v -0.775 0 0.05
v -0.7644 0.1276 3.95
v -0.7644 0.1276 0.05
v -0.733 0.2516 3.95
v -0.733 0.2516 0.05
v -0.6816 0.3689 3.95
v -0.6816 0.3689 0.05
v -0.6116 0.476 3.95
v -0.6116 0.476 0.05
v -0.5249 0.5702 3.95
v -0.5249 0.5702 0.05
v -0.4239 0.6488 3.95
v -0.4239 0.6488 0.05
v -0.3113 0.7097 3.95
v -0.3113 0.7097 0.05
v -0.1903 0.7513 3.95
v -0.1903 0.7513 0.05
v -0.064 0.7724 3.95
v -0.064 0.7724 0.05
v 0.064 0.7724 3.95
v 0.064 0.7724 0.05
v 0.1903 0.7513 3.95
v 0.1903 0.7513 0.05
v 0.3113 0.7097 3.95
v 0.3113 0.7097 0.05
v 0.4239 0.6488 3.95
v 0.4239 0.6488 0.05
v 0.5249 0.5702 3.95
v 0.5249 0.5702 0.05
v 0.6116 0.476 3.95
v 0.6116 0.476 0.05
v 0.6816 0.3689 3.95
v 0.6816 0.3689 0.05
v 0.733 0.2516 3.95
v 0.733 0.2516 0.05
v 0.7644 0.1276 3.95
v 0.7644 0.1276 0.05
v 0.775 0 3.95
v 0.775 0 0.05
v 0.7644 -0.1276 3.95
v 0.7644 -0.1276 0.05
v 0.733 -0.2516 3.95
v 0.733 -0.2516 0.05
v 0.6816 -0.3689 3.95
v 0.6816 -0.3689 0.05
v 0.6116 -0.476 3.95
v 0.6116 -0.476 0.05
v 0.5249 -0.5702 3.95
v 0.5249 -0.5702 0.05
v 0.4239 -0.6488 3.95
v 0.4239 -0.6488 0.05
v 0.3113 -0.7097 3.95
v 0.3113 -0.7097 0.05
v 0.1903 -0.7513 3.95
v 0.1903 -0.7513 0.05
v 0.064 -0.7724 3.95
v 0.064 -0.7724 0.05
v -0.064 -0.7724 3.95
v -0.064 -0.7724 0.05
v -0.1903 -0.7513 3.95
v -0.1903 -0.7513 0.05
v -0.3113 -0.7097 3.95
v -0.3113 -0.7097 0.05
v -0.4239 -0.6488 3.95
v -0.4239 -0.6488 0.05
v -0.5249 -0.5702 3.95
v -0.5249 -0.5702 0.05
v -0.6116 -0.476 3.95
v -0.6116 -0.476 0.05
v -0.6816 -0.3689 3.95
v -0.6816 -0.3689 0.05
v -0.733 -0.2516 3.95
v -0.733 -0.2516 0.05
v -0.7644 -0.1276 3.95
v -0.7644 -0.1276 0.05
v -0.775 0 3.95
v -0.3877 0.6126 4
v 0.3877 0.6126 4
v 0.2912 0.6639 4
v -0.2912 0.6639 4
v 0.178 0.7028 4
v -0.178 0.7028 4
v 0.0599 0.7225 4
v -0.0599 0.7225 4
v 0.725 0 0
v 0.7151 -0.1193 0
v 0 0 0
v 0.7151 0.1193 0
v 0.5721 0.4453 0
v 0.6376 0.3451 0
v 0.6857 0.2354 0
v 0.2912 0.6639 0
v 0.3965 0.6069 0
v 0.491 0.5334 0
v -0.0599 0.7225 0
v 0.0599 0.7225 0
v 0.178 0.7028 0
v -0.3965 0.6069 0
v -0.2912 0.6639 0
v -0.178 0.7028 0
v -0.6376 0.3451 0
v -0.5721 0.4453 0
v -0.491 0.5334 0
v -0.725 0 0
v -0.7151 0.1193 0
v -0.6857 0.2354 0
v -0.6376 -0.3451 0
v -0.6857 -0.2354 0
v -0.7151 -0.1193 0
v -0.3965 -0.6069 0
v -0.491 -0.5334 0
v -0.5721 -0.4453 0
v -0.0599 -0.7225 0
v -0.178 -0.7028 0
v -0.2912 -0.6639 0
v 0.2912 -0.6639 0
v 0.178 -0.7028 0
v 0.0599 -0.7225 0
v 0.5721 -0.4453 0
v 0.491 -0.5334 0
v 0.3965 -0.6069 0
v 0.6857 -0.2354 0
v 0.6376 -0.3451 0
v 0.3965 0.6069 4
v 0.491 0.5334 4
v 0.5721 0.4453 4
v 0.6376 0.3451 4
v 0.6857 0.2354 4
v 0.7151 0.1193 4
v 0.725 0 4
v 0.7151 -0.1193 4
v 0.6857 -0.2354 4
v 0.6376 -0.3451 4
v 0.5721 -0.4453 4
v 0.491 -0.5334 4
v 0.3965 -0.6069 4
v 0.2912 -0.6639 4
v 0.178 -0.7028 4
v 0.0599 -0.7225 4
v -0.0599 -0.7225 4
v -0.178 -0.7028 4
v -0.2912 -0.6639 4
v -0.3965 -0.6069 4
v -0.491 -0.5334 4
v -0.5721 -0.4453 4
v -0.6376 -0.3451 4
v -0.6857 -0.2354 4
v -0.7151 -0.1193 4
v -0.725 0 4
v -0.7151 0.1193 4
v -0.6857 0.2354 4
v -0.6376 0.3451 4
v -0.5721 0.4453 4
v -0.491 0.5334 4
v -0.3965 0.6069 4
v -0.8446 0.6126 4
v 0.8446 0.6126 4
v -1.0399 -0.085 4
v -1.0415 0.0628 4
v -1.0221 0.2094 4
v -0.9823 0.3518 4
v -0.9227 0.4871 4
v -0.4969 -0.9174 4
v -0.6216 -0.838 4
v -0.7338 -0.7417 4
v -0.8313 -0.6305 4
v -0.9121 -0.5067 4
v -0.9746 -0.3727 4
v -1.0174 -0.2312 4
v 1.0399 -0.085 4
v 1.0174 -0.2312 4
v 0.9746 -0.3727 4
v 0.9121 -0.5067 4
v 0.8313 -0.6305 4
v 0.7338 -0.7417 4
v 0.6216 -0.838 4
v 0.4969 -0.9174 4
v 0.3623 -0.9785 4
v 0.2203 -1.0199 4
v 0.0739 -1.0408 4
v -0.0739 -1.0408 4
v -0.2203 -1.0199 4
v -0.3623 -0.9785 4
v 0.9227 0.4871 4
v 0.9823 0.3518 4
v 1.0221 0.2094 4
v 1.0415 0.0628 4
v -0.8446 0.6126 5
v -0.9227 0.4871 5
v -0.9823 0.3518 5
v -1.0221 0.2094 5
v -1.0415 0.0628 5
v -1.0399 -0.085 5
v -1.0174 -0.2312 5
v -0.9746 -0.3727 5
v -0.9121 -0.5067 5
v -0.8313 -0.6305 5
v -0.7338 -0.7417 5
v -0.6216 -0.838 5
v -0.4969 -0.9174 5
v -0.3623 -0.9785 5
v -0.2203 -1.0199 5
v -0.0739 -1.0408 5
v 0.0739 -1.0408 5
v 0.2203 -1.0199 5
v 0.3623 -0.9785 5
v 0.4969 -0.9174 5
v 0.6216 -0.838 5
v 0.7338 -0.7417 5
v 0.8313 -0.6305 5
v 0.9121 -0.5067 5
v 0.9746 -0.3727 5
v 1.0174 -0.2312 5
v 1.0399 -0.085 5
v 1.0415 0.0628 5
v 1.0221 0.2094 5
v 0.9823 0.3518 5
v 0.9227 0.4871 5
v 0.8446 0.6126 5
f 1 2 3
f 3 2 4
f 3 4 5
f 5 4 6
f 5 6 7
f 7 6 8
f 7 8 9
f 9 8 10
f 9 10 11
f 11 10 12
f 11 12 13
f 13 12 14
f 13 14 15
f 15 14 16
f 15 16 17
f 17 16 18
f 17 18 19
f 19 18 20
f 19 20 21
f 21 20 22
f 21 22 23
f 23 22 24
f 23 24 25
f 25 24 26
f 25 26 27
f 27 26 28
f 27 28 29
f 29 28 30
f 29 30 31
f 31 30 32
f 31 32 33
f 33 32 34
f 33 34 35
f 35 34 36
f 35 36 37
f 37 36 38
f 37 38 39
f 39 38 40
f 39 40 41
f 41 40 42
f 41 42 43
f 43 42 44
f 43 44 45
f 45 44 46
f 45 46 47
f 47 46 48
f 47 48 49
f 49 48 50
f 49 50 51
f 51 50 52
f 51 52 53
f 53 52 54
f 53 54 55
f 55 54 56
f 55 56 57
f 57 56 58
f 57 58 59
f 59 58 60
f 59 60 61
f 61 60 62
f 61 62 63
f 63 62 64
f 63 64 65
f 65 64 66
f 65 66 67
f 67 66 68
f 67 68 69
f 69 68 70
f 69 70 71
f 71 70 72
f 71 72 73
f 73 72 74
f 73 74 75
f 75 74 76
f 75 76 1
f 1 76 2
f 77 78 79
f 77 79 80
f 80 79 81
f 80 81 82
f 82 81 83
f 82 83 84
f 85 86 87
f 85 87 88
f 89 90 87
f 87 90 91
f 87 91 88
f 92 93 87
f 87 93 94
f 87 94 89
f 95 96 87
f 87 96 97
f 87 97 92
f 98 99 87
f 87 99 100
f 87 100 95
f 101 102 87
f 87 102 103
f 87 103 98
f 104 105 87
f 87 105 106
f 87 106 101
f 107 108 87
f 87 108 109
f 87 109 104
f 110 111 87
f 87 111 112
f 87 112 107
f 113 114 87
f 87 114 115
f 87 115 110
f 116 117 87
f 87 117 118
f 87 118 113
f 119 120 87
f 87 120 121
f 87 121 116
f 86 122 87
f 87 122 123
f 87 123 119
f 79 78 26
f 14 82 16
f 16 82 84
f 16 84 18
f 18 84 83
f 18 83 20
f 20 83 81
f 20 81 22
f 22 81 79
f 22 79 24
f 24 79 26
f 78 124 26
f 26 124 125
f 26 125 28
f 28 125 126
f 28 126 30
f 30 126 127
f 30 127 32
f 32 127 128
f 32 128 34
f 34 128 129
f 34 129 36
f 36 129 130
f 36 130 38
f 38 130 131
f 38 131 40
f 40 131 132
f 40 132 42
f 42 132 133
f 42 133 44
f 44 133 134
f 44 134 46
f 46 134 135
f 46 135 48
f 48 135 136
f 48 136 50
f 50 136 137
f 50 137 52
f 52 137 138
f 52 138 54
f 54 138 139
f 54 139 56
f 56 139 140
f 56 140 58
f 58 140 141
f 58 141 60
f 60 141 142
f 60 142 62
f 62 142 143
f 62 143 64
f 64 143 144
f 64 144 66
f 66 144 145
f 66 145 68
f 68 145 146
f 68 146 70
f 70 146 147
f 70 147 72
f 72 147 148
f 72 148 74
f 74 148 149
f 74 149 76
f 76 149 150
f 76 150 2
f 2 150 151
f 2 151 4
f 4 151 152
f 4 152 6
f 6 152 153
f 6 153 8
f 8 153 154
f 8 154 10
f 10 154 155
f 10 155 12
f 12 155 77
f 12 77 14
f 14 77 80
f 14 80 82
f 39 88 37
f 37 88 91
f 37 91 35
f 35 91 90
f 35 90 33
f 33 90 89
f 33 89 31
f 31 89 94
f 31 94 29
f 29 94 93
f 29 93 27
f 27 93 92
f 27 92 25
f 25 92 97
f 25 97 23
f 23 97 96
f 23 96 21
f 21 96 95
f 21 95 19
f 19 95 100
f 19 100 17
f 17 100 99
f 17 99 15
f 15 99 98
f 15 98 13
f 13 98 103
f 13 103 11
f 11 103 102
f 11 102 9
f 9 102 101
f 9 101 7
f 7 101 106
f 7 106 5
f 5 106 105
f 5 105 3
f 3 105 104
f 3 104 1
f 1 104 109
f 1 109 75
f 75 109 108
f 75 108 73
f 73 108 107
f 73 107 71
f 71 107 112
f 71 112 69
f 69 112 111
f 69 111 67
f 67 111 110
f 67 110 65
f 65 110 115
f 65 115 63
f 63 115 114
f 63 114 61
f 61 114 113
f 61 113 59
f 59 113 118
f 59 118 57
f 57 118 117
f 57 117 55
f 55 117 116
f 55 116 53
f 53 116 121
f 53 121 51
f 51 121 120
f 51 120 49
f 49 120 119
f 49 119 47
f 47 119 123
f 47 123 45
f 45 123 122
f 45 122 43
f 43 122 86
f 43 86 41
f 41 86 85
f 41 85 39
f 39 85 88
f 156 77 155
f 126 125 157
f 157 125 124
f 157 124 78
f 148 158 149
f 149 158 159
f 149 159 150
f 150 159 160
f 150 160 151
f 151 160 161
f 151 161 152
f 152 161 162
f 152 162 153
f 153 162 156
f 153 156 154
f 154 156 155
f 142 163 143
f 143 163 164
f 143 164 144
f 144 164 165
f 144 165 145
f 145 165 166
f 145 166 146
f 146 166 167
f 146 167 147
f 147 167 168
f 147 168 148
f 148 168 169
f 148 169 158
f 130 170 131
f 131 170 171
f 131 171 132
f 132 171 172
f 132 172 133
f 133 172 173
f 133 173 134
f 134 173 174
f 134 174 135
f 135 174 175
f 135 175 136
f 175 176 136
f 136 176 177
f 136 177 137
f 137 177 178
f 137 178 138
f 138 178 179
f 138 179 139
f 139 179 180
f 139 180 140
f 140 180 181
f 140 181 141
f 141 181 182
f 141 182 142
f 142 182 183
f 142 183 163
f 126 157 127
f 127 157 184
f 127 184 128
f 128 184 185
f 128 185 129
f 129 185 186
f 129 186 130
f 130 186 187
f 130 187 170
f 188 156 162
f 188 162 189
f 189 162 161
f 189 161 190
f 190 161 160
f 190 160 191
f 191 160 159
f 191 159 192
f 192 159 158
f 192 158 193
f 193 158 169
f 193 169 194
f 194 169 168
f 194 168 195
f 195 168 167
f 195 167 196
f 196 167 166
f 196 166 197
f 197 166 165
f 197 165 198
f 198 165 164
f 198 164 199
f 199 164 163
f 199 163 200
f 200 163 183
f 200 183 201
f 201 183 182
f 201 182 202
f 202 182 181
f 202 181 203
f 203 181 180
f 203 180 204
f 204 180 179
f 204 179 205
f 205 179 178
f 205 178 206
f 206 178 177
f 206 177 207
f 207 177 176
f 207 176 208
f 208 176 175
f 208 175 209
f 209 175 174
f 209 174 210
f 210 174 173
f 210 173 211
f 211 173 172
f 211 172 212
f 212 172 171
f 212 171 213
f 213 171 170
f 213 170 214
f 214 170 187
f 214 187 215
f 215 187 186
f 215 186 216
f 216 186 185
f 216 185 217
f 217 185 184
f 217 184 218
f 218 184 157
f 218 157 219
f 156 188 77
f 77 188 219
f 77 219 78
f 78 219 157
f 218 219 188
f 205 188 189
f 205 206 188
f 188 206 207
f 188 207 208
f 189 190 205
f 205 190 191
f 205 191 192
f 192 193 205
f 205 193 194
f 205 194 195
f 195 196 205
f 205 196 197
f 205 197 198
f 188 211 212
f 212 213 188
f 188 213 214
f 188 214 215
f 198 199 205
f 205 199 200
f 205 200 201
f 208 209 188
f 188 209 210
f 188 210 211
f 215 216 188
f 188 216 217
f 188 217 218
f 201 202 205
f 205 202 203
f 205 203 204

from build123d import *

# Parameters (mm, degrees)
SKETCH2_R           = 0.775
BOSS_EXTRUDE1_DEPTH = 4
CHAMFER2_SIZE       = 0.05
BOSS_EXTRUDE2_DEPTH = 1


with BuildPart() as part:
    # Sketch2 → Boss-Extrude1 (new body)
    with BuildSketch(Plane.XY):
        Circle(SKETCH2_R)
    extrude(amount=BOSS_EXTRUDE1_DEPTH)

    # Chamfer2
    chamfer2_edges = [part.edges().sort_by_distance(p)[0] for p in [
        (-0.775, 0, 0),
        (-0.775, 0, 4),
    ]]
    chamfer(chamfer2_edges, length=CHAMFER2_SIZE)

    # Sketch3 → Boss-Extrude2 (add)
    with BuildSketch(Plane.XY.offset(4)):
        with BuildLine():
            Line((-0.844567845, 0.612649901), (0.844567845, 0.612649901))
            ThreePointArc((0.844567845, 0.612649901), (0, -1.043376608), (-0.844567845, 0.612649901))
        make_face()
    extrude(amount=BOSS_EXTRUDE2_DEPTH)


solid = part.part
